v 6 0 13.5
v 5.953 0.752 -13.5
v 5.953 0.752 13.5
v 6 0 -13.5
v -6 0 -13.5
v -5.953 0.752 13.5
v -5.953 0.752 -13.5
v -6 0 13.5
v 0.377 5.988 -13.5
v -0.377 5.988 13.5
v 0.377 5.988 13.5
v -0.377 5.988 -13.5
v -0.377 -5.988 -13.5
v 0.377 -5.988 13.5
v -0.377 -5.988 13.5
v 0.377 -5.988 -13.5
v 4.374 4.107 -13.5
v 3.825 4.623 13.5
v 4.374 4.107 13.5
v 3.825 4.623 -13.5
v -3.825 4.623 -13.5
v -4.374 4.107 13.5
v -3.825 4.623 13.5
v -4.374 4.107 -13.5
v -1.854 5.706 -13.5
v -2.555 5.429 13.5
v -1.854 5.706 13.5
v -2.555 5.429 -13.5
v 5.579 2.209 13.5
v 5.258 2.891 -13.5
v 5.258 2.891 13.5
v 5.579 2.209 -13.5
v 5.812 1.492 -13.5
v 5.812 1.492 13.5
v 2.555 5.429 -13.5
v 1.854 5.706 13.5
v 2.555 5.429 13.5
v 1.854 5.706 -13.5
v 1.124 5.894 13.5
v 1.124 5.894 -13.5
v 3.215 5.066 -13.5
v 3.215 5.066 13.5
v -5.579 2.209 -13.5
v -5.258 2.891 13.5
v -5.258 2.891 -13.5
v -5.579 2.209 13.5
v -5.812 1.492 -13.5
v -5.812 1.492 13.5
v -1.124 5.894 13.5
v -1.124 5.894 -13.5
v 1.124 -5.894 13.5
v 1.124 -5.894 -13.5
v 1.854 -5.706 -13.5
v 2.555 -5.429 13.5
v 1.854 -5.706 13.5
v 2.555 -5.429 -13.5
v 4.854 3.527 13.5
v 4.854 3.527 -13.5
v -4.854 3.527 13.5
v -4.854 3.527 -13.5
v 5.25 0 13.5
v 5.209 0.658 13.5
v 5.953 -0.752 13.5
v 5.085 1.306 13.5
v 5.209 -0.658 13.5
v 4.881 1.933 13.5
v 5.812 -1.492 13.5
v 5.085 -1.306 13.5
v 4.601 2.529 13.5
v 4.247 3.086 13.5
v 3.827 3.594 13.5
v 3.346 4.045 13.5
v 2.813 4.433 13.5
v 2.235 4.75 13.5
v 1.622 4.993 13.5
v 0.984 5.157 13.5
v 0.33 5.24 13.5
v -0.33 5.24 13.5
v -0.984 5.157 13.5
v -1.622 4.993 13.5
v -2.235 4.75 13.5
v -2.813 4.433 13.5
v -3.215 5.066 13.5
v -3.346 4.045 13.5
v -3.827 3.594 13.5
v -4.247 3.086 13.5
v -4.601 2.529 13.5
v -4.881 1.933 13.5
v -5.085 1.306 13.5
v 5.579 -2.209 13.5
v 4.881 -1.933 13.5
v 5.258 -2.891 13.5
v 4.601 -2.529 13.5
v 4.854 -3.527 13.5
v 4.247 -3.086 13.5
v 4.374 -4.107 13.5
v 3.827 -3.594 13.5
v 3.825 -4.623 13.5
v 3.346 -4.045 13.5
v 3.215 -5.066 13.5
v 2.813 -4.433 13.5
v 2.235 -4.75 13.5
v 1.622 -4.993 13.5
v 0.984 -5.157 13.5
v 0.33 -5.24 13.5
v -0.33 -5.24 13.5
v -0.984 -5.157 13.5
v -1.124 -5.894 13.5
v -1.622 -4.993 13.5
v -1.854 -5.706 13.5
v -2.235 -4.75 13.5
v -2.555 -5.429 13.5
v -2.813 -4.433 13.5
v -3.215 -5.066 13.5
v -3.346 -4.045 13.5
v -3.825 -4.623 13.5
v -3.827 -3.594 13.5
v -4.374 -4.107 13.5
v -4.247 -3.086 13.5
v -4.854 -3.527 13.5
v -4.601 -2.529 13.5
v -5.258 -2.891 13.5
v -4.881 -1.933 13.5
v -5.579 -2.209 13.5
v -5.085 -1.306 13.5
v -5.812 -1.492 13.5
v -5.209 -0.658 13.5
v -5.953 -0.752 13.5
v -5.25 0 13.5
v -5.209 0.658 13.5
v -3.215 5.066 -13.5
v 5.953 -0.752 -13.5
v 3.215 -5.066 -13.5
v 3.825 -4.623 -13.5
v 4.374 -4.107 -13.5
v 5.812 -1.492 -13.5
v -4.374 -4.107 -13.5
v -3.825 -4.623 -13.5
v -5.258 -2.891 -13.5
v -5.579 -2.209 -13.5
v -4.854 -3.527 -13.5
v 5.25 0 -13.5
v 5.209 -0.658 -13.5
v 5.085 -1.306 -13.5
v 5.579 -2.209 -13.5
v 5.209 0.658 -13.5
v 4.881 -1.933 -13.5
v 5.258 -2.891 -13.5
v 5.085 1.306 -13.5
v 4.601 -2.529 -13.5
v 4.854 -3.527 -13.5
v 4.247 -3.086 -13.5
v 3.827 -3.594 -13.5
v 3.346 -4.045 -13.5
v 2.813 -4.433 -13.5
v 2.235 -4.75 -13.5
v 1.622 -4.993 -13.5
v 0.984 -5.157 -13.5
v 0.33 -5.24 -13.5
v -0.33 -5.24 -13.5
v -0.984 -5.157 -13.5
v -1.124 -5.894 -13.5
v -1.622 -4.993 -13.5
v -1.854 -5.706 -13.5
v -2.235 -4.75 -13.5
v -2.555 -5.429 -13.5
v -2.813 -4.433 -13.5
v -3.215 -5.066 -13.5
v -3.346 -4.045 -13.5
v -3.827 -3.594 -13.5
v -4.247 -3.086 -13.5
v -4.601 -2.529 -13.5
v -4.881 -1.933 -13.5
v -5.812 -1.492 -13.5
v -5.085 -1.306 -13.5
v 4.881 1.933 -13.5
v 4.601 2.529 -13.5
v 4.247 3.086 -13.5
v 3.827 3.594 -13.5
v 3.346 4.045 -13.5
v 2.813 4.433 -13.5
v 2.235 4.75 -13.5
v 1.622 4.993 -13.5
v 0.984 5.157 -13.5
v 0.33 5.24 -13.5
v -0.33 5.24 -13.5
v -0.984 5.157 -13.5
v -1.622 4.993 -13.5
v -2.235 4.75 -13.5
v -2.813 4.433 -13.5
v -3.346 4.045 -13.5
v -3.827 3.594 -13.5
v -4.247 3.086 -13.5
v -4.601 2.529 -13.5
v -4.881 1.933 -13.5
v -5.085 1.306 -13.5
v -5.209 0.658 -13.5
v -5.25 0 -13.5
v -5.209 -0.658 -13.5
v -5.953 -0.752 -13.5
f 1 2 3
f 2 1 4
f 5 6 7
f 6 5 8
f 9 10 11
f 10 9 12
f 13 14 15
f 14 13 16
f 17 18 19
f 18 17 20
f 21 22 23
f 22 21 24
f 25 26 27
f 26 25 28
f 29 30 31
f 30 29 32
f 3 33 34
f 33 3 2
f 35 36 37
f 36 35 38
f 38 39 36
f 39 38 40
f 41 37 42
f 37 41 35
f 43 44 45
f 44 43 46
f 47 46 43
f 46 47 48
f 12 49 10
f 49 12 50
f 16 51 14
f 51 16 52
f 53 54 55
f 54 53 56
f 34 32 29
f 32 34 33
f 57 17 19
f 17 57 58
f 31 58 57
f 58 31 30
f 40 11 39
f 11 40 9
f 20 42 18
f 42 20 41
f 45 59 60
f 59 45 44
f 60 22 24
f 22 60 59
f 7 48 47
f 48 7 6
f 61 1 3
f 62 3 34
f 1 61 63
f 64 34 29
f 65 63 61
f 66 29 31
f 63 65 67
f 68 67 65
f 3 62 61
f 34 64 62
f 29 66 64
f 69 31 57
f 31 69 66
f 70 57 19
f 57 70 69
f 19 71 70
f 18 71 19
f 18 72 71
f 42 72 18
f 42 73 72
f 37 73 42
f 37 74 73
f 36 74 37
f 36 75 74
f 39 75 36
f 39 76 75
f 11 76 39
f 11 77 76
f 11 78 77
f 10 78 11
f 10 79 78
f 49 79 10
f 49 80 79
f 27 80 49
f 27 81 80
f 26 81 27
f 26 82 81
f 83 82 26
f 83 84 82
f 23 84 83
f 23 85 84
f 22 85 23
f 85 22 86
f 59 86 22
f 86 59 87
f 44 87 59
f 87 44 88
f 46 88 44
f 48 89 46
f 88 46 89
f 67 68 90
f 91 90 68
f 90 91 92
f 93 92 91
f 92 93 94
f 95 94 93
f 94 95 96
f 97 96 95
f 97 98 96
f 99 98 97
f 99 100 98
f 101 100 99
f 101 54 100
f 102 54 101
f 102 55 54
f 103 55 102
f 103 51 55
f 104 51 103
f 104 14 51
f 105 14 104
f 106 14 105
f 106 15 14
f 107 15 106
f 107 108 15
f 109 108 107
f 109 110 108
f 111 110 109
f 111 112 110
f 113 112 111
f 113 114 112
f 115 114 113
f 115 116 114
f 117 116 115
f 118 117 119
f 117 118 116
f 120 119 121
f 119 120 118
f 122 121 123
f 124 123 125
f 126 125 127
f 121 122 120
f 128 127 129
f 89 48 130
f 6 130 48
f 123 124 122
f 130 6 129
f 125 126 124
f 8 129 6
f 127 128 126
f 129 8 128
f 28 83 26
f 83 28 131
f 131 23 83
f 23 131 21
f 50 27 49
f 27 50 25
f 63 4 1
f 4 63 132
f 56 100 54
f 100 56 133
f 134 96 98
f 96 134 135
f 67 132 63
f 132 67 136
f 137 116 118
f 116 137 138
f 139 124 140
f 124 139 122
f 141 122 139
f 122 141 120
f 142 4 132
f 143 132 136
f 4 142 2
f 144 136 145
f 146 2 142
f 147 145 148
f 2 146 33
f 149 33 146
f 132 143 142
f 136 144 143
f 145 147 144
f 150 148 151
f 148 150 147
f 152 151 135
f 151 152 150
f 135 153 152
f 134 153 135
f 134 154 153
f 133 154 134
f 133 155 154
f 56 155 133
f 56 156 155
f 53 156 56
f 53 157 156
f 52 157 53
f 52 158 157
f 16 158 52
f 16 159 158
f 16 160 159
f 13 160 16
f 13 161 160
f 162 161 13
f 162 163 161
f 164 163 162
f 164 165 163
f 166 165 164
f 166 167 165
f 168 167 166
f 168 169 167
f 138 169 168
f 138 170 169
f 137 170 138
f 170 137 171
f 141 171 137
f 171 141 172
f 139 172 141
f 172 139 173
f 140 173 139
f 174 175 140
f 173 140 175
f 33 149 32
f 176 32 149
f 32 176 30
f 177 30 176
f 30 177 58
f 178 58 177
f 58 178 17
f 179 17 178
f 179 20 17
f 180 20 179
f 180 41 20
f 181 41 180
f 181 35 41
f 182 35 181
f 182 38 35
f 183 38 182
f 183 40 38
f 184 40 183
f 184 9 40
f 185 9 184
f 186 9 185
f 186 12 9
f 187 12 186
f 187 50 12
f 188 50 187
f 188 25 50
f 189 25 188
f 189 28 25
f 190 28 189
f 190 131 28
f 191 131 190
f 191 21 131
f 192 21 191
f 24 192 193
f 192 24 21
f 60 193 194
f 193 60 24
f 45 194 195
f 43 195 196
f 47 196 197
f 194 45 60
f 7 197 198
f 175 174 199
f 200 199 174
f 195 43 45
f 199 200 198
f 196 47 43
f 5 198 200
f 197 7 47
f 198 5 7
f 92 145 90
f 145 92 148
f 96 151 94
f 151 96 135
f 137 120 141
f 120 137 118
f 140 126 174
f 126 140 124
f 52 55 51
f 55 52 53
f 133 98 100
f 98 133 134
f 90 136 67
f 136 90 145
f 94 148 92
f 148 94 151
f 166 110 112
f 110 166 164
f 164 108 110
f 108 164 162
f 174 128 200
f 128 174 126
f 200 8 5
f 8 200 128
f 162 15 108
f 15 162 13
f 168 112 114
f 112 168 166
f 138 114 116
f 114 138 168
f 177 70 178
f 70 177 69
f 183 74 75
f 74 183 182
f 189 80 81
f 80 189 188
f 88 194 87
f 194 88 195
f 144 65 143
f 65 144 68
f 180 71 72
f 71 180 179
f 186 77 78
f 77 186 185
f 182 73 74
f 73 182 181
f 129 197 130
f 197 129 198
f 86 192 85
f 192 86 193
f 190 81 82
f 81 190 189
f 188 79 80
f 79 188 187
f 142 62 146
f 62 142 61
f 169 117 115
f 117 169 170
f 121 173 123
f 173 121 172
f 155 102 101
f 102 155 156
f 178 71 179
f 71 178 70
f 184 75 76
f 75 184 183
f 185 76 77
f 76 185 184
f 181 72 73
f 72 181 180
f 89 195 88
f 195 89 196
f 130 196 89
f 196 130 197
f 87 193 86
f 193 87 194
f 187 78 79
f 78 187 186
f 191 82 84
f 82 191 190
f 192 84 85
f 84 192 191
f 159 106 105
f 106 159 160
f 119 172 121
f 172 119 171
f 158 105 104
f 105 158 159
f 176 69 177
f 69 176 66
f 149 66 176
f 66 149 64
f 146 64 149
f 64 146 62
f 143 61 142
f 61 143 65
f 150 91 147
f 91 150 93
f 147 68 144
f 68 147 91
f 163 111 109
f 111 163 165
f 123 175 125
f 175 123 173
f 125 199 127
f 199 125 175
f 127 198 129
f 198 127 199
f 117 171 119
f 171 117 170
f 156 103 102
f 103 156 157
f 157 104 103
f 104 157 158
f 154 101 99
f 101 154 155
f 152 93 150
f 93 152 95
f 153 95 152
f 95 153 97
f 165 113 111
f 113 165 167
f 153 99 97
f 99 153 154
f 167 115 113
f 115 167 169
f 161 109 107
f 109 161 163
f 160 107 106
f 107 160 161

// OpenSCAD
$fn = 50;


difference() {
	union() {
		translate(v = [0, 0, -13.5000000000]) {
			cylinder(h = 27, r = 6.0000000000);
		}
	}
	union() {
		translate(v = [0, 0, -100.0000000000]) {
			cylinder(h = 200, r = 5.2500000000);
		}
	}
}
